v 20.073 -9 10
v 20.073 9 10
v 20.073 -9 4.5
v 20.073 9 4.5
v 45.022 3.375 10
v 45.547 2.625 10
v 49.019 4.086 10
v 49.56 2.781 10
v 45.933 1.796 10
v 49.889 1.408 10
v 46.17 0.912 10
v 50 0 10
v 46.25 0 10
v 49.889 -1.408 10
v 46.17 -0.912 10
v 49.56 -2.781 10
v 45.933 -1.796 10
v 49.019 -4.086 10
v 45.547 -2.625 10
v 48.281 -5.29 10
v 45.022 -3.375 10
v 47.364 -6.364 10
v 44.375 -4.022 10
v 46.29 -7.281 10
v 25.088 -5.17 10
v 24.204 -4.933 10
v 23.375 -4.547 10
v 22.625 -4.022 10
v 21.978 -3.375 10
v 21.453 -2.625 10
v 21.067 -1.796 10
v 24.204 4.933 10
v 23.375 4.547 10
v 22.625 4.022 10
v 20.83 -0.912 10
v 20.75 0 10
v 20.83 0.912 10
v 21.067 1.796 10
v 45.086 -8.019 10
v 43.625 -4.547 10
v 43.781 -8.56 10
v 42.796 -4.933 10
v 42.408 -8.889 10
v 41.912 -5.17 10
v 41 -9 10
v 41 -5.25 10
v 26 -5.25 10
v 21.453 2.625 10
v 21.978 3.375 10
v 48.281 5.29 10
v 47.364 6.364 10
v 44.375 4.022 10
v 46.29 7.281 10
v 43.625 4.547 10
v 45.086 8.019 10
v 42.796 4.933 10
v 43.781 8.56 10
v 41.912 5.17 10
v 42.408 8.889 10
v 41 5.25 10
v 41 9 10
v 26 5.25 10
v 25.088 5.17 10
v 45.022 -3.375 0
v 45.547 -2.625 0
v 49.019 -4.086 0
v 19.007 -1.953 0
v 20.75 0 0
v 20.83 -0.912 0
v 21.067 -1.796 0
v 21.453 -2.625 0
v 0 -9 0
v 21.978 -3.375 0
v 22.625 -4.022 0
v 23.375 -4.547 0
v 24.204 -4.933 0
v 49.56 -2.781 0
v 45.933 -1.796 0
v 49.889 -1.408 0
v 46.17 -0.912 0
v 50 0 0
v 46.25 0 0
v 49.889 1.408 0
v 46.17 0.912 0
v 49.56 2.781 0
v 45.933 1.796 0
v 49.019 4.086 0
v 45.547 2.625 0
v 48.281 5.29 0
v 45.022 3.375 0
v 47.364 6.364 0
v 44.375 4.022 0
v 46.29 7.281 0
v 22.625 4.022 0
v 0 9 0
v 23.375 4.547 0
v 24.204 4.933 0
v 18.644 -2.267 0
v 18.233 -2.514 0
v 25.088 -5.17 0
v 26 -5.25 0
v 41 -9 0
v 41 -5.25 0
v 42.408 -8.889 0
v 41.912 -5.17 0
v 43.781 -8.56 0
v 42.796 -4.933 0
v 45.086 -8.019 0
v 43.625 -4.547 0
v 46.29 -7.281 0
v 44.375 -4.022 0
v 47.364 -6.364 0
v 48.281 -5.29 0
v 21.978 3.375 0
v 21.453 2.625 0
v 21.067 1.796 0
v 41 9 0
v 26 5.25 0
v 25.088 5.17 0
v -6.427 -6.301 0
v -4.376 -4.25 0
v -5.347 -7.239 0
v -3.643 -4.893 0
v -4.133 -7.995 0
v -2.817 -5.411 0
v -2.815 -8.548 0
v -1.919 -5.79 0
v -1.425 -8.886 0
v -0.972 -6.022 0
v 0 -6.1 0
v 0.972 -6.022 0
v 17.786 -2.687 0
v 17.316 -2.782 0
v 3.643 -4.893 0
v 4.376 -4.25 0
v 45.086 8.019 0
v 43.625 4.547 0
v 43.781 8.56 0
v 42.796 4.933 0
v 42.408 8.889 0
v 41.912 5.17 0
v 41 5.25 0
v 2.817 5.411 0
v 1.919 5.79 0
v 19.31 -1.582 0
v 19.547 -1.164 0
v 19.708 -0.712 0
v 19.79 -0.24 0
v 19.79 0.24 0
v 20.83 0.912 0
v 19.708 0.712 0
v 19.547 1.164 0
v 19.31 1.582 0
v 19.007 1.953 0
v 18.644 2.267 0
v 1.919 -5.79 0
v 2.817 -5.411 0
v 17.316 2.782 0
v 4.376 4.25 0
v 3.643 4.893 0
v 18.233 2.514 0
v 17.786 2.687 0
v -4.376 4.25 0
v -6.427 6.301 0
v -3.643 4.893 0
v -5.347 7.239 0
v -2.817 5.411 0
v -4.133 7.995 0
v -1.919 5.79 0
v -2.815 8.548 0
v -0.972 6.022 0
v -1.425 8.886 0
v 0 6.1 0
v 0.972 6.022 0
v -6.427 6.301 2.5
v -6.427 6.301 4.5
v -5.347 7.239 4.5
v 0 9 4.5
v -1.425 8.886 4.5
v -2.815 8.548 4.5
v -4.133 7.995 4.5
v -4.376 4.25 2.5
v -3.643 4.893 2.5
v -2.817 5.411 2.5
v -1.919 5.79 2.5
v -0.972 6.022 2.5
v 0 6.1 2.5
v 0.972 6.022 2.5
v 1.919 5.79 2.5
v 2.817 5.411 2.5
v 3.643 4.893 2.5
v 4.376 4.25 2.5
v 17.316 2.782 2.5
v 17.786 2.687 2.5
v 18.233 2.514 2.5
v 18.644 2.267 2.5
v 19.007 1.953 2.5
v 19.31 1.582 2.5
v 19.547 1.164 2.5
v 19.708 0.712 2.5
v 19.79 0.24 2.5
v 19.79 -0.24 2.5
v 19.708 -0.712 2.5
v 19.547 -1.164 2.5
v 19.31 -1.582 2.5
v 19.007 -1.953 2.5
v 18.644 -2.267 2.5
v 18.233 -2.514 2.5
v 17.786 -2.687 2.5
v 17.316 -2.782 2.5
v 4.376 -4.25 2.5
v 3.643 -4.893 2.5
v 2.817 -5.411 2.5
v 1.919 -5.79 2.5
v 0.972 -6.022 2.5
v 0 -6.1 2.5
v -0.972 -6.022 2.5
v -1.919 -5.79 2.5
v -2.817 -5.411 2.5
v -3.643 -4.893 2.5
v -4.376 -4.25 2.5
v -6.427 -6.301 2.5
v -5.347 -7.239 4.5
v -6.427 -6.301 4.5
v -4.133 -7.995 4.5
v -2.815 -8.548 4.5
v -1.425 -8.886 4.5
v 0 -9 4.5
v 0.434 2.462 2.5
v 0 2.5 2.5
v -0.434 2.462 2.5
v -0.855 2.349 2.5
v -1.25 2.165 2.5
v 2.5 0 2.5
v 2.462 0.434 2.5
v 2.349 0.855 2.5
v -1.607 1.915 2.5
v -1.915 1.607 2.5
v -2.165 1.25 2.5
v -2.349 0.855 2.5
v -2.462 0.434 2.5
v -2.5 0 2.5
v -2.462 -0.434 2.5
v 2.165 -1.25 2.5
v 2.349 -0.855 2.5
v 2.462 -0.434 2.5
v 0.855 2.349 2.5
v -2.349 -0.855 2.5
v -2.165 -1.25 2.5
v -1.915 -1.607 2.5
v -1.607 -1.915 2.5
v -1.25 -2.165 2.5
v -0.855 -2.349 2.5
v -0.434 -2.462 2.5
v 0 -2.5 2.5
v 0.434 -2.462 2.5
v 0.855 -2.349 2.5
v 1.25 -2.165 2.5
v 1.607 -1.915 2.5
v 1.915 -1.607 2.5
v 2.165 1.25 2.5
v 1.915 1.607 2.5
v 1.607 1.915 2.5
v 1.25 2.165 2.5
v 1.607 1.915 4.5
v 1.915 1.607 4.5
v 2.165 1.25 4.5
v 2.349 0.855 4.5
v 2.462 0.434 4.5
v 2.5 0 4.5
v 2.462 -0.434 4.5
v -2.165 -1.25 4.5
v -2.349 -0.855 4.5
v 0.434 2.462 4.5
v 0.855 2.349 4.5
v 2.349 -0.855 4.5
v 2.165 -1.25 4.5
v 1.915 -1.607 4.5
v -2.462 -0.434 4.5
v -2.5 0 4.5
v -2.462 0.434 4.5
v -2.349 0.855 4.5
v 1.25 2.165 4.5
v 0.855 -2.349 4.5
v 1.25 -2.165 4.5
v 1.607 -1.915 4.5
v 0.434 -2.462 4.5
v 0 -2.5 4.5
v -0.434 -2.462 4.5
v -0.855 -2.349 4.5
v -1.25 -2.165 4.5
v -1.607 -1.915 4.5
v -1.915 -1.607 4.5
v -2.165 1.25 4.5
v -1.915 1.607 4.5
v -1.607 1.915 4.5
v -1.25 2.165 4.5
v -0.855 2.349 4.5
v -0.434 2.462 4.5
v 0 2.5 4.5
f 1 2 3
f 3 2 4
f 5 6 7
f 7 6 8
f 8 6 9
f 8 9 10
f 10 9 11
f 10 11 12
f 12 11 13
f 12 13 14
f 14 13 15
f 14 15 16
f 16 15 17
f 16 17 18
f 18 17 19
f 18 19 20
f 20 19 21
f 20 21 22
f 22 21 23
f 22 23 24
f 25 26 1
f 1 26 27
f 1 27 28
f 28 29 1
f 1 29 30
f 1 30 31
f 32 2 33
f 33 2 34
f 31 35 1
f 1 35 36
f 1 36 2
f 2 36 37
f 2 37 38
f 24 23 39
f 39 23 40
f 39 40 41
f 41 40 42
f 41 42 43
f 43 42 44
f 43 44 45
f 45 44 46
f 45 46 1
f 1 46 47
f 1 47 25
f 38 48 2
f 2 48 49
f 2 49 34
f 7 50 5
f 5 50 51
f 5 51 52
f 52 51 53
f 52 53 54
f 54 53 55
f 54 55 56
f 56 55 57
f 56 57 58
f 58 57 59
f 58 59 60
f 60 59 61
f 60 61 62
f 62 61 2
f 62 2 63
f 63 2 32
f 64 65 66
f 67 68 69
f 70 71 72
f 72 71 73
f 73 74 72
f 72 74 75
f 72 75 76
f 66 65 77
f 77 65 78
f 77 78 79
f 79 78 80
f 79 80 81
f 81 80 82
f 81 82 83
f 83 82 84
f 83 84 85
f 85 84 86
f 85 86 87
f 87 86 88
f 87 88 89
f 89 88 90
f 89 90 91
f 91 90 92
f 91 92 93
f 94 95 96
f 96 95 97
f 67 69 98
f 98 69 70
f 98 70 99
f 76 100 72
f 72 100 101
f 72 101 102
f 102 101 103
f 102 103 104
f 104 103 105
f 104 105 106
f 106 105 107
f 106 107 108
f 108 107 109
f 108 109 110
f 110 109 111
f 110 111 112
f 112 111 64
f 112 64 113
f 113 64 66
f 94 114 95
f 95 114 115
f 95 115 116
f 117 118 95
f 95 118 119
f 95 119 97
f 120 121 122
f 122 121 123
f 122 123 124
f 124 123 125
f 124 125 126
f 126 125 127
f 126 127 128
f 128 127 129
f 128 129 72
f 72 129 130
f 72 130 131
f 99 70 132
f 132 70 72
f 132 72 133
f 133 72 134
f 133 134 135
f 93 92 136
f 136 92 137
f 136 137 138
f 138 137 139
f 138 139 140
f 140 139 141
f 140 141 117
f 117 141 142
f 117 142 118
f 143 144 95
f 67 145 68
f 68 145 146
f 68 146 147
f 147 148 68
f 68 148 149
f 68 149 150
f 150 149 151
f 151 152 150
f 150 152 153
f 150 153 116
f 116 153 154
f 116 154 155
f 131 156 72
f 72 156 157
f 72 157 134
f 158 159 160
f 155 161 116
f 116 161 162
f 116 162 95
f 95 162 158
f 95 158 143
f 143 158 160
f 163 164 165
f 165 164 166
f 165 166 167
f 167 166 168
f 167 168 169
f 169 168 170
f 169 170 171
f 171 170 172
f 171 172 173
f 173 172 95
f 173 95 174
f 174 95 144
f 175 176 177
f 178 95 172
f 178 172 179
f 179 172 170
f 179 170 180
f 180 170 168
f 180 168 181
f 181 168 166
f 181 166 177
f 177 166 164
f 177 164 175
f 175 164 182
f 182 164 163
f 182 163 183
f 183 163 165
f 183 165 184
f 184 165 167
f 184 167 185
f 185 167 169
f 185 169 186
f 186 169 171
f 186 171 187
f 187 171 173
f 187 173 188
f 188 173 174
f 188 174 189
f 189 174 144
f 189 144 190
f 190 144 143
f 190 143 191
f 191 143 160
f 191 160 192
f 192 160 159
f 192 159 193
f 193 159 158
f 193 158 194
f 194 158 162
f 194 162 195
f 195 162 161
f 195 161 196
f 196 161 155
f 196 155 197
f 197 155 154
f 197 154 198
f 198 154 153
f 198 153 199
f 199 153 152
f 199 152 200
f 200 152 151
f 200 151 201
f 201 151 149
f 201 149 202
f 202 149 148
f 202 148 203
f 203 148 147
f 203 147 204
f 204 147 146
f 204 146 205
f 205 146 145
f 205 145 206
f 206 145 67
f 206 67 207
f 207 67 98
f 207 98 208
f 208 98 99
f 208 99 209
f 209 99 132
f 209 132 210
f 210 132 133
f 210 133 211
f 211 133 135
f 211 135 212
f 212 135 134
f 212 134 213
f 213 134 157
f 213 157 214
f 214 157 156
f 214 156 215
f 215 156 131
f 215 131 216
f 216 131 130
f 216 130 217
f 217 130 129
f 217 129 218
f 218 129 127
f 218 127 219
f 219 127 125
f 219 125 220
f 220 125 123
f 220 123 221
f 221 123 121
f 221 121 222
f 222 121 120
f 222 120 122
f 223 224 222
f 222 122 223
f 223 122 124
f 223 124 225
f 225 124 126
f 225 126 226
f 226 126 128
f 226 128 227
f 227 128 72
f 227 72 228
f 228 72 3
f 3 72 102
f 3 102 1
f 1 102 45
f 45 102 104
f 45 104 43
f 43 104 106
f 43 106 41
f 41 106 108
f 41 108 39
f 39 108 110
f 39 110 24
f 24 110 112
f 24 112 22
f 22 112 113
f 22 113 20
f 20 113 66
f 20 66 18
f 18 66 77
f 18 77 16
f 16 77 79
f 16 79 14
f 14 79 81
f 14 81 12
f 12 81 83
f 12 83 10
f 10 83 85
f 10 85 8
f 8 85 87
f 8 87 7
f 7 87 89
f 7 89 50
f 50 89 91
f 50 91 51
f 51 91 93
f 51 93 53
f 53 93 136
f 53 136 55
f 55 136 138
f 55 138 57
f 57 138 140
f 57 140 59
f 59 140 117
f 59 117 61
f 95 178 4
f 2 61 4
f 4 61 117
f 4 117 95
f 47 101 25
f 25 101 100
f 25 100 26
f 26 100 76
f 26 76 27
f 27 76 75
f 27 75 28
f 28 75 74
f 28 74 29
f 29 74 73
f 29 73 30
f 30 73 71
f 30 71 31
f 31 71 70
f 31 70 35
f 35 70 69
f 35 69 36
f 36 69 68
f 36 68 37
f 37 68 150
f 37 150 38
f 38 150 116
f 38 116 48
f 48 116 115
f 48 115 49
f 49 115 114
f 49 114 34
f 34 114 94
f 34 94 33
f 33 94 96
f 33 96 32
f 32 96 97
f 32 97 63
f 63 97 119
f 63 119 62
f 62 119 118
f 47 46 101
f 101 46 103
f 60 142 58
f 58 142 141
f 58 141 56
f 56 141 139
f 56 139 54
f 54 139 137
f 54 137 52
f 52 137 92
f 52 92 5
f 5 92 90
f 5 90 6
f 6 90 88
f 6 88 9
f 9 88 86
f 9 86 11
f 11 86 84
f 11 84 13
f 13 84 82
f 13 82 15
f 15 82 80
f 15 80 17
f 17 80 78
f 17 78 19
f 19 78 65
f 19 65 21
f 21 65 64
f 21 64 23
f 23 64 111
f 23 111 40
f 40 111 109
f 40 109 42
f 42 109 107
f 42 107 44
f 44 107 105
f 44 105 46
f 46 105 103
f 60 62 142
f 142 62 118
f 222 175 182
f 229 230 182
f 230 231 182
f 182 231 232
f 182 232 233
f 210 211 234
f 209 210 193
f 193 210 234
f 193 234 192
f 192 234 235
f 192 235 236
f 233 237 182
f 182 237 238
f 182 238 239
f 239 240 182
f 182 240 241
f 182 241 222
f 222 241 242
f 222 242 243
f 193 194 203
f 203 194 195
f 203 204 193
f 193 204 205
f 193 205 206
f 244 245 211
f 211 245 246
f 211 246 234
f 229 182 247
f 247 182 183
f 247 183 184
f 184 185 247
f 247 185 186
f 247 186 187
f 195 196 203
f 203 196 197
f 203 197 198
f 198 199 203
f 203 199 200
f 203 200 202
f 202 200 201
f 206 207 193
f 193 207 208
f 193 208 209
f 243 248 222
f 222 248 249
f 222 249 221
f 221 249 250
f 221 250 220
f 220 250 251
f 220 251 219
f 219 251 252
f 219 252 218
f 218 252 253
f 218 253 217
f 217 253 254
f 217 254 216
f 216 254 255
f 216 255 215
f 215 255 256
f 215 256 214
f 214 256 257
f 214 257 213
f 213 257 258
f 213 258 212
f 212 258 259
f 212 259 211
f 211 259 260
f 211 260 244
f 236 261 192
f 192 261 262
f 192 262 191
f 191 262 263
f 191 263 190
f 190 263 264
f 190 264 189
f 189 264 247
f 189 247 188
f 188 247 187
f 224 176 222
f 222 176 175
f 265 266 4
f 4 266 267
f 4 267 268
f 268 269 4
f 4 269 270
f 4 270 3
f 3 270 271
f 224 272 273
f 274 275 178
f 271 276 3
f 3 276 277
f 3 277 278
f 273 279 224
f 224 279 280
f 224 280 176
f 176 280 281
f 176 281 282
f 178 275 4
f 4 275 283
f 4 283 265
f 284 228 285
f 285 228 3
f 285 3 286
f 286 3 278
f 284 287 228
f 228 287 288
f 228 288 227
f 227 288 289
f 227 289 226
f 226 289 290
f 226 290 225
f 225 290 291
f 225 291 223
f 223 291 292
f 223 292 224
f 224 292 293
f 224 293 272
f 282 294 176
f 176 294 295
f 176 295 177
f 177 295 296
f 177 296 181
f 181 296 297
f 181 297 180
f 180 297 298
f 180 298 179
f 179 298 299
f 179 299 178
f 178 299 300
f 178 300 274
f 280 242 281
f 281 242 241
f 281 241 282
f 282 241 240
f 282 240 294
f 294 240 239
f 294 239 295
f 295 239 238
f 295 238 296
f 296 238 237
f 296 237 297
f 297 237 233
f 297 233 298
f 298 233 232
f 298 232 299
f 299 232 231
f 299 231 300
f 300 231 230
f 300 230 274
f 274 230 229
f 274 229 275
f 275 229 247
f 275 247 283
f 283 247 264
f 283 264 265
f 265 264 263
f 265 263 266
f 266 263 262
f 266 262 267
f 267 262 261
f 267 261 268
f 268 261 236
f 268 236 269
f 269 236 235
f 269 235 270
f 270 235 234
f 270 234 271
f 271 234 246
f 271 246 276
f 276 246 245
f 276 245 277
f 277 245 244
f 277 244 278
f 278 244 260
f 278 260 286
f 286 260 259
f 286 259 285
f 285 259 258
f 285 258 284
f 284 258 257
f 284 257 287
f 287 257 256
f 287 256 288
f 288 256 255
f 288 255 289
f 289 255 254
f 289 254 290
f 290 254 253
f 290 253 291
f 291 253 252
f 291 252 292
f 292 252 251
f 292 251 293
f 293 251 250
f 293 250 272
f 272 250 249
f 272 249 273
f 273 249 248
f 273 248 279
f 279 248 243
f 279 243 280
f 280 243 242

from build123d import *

# Parameters (mm, degrees)
MAIN_DEPTH          = 10
SKETCH1_W           = 26.5
SKETCH1_H           = 18
CUT_EXTRUDE1_DEPTH  = 7.5
ESQUISSE2_R         = 2.5
BOSS_EXTRUDE1_DEPTH = 2


with BuildPart() as part:
    # Esquisse1 → Main (new body)
    with BuildSketch(Plane.XY):
        with BuildLine():
            Line((-4.375785644, 4.25), (-6.426543071, 6.300757427))
            ThreePointArc((-6.426543071, 6.300757427), (-3.48519606, 8.297795395), (0, 9))
            Line((0, 9), (41, 9))
            ThreePointArc((41, 9), (50, 0), (41, -9))
            Line((41, -9), (0, -9))
            ThreePointArc((0, -9), (-3.48519606, -8.297795395), (-6.426543071, -6.300757427))
            Line((-6.426543071, -6.300757427), (-4.375785644, -4.25))
            ThreePointArc((-4.375785644, -4.25), (0, -6.1), (4.375785644, -4.25))
            Line((4.375785644, -4.25), (17.31559729, -2.78215714))
            ThreePointArc((17.31559729, -2.78215714), (19.8, 0), (17.31559729, 2.78215714))
            Line((17.31559729, 2.78215714), (4.375785644, 4.25))
            ThreePointArc((4.375785644, 4.25), (0, 6.1), (-4.375785644, 4.25))
        make_face()
        with BuildLine():
            Line((26, 5.25), (41, 5.25))
            ThreePointArc((41, 5.25), (46.25, 0), (41, -5.25))
            Line((41, -5.25), (26, -5.25))
            ThreePointArc((26, -5.25), (20.75, 0), (26, 5.25))
        make_face(mode=Mode.SUBTRACT)
    extrude(amount=MAIN_DEPTH)

    # Sketch1 → Cut-Extrude1 (cut)
    with BuildSketch(Plane.XY.offset(10)):
        with Locations((6.823456929, 0)):
            Rectangle(SKETCH1_W, SKETCH1_H)
    extrude(amount=-CUT_EXTRUDE1_DEPTH, mode=Mode.SUBTRACT)

    # Esquisse2 → Boss-Extrude1 (add)
    with BuildSketch(Plane(origin=(0, 0, 2.5), x_dir=(-1, 0, 0), z_dir=(0, 0, -1))):
        with BuildLine():
            Line((0, -9), (-20.073456929, -9))
            Line((-20.073456929, -9), (-20.073456929, 9))
            Line((-20.073456929, 9), (0, 9))
            ThreePointArc((0, 9), (3.48519606, 8.297795395), (6.426543071, 6.300757427))
            Line((6.426543071, 6.300757427), (6.426543071, -6.300757427))
            ThreePointArc((6.426543071, -6.300757427), (3.48519606, -8.297795395), (0, -9))
        make_face()
        Circle(ESQUISSE2_R, mode=Mode.SUBTRACT)
    extrude(amount=-BOSS_EXTRUDE1_DEPTH)


solid = part.part
